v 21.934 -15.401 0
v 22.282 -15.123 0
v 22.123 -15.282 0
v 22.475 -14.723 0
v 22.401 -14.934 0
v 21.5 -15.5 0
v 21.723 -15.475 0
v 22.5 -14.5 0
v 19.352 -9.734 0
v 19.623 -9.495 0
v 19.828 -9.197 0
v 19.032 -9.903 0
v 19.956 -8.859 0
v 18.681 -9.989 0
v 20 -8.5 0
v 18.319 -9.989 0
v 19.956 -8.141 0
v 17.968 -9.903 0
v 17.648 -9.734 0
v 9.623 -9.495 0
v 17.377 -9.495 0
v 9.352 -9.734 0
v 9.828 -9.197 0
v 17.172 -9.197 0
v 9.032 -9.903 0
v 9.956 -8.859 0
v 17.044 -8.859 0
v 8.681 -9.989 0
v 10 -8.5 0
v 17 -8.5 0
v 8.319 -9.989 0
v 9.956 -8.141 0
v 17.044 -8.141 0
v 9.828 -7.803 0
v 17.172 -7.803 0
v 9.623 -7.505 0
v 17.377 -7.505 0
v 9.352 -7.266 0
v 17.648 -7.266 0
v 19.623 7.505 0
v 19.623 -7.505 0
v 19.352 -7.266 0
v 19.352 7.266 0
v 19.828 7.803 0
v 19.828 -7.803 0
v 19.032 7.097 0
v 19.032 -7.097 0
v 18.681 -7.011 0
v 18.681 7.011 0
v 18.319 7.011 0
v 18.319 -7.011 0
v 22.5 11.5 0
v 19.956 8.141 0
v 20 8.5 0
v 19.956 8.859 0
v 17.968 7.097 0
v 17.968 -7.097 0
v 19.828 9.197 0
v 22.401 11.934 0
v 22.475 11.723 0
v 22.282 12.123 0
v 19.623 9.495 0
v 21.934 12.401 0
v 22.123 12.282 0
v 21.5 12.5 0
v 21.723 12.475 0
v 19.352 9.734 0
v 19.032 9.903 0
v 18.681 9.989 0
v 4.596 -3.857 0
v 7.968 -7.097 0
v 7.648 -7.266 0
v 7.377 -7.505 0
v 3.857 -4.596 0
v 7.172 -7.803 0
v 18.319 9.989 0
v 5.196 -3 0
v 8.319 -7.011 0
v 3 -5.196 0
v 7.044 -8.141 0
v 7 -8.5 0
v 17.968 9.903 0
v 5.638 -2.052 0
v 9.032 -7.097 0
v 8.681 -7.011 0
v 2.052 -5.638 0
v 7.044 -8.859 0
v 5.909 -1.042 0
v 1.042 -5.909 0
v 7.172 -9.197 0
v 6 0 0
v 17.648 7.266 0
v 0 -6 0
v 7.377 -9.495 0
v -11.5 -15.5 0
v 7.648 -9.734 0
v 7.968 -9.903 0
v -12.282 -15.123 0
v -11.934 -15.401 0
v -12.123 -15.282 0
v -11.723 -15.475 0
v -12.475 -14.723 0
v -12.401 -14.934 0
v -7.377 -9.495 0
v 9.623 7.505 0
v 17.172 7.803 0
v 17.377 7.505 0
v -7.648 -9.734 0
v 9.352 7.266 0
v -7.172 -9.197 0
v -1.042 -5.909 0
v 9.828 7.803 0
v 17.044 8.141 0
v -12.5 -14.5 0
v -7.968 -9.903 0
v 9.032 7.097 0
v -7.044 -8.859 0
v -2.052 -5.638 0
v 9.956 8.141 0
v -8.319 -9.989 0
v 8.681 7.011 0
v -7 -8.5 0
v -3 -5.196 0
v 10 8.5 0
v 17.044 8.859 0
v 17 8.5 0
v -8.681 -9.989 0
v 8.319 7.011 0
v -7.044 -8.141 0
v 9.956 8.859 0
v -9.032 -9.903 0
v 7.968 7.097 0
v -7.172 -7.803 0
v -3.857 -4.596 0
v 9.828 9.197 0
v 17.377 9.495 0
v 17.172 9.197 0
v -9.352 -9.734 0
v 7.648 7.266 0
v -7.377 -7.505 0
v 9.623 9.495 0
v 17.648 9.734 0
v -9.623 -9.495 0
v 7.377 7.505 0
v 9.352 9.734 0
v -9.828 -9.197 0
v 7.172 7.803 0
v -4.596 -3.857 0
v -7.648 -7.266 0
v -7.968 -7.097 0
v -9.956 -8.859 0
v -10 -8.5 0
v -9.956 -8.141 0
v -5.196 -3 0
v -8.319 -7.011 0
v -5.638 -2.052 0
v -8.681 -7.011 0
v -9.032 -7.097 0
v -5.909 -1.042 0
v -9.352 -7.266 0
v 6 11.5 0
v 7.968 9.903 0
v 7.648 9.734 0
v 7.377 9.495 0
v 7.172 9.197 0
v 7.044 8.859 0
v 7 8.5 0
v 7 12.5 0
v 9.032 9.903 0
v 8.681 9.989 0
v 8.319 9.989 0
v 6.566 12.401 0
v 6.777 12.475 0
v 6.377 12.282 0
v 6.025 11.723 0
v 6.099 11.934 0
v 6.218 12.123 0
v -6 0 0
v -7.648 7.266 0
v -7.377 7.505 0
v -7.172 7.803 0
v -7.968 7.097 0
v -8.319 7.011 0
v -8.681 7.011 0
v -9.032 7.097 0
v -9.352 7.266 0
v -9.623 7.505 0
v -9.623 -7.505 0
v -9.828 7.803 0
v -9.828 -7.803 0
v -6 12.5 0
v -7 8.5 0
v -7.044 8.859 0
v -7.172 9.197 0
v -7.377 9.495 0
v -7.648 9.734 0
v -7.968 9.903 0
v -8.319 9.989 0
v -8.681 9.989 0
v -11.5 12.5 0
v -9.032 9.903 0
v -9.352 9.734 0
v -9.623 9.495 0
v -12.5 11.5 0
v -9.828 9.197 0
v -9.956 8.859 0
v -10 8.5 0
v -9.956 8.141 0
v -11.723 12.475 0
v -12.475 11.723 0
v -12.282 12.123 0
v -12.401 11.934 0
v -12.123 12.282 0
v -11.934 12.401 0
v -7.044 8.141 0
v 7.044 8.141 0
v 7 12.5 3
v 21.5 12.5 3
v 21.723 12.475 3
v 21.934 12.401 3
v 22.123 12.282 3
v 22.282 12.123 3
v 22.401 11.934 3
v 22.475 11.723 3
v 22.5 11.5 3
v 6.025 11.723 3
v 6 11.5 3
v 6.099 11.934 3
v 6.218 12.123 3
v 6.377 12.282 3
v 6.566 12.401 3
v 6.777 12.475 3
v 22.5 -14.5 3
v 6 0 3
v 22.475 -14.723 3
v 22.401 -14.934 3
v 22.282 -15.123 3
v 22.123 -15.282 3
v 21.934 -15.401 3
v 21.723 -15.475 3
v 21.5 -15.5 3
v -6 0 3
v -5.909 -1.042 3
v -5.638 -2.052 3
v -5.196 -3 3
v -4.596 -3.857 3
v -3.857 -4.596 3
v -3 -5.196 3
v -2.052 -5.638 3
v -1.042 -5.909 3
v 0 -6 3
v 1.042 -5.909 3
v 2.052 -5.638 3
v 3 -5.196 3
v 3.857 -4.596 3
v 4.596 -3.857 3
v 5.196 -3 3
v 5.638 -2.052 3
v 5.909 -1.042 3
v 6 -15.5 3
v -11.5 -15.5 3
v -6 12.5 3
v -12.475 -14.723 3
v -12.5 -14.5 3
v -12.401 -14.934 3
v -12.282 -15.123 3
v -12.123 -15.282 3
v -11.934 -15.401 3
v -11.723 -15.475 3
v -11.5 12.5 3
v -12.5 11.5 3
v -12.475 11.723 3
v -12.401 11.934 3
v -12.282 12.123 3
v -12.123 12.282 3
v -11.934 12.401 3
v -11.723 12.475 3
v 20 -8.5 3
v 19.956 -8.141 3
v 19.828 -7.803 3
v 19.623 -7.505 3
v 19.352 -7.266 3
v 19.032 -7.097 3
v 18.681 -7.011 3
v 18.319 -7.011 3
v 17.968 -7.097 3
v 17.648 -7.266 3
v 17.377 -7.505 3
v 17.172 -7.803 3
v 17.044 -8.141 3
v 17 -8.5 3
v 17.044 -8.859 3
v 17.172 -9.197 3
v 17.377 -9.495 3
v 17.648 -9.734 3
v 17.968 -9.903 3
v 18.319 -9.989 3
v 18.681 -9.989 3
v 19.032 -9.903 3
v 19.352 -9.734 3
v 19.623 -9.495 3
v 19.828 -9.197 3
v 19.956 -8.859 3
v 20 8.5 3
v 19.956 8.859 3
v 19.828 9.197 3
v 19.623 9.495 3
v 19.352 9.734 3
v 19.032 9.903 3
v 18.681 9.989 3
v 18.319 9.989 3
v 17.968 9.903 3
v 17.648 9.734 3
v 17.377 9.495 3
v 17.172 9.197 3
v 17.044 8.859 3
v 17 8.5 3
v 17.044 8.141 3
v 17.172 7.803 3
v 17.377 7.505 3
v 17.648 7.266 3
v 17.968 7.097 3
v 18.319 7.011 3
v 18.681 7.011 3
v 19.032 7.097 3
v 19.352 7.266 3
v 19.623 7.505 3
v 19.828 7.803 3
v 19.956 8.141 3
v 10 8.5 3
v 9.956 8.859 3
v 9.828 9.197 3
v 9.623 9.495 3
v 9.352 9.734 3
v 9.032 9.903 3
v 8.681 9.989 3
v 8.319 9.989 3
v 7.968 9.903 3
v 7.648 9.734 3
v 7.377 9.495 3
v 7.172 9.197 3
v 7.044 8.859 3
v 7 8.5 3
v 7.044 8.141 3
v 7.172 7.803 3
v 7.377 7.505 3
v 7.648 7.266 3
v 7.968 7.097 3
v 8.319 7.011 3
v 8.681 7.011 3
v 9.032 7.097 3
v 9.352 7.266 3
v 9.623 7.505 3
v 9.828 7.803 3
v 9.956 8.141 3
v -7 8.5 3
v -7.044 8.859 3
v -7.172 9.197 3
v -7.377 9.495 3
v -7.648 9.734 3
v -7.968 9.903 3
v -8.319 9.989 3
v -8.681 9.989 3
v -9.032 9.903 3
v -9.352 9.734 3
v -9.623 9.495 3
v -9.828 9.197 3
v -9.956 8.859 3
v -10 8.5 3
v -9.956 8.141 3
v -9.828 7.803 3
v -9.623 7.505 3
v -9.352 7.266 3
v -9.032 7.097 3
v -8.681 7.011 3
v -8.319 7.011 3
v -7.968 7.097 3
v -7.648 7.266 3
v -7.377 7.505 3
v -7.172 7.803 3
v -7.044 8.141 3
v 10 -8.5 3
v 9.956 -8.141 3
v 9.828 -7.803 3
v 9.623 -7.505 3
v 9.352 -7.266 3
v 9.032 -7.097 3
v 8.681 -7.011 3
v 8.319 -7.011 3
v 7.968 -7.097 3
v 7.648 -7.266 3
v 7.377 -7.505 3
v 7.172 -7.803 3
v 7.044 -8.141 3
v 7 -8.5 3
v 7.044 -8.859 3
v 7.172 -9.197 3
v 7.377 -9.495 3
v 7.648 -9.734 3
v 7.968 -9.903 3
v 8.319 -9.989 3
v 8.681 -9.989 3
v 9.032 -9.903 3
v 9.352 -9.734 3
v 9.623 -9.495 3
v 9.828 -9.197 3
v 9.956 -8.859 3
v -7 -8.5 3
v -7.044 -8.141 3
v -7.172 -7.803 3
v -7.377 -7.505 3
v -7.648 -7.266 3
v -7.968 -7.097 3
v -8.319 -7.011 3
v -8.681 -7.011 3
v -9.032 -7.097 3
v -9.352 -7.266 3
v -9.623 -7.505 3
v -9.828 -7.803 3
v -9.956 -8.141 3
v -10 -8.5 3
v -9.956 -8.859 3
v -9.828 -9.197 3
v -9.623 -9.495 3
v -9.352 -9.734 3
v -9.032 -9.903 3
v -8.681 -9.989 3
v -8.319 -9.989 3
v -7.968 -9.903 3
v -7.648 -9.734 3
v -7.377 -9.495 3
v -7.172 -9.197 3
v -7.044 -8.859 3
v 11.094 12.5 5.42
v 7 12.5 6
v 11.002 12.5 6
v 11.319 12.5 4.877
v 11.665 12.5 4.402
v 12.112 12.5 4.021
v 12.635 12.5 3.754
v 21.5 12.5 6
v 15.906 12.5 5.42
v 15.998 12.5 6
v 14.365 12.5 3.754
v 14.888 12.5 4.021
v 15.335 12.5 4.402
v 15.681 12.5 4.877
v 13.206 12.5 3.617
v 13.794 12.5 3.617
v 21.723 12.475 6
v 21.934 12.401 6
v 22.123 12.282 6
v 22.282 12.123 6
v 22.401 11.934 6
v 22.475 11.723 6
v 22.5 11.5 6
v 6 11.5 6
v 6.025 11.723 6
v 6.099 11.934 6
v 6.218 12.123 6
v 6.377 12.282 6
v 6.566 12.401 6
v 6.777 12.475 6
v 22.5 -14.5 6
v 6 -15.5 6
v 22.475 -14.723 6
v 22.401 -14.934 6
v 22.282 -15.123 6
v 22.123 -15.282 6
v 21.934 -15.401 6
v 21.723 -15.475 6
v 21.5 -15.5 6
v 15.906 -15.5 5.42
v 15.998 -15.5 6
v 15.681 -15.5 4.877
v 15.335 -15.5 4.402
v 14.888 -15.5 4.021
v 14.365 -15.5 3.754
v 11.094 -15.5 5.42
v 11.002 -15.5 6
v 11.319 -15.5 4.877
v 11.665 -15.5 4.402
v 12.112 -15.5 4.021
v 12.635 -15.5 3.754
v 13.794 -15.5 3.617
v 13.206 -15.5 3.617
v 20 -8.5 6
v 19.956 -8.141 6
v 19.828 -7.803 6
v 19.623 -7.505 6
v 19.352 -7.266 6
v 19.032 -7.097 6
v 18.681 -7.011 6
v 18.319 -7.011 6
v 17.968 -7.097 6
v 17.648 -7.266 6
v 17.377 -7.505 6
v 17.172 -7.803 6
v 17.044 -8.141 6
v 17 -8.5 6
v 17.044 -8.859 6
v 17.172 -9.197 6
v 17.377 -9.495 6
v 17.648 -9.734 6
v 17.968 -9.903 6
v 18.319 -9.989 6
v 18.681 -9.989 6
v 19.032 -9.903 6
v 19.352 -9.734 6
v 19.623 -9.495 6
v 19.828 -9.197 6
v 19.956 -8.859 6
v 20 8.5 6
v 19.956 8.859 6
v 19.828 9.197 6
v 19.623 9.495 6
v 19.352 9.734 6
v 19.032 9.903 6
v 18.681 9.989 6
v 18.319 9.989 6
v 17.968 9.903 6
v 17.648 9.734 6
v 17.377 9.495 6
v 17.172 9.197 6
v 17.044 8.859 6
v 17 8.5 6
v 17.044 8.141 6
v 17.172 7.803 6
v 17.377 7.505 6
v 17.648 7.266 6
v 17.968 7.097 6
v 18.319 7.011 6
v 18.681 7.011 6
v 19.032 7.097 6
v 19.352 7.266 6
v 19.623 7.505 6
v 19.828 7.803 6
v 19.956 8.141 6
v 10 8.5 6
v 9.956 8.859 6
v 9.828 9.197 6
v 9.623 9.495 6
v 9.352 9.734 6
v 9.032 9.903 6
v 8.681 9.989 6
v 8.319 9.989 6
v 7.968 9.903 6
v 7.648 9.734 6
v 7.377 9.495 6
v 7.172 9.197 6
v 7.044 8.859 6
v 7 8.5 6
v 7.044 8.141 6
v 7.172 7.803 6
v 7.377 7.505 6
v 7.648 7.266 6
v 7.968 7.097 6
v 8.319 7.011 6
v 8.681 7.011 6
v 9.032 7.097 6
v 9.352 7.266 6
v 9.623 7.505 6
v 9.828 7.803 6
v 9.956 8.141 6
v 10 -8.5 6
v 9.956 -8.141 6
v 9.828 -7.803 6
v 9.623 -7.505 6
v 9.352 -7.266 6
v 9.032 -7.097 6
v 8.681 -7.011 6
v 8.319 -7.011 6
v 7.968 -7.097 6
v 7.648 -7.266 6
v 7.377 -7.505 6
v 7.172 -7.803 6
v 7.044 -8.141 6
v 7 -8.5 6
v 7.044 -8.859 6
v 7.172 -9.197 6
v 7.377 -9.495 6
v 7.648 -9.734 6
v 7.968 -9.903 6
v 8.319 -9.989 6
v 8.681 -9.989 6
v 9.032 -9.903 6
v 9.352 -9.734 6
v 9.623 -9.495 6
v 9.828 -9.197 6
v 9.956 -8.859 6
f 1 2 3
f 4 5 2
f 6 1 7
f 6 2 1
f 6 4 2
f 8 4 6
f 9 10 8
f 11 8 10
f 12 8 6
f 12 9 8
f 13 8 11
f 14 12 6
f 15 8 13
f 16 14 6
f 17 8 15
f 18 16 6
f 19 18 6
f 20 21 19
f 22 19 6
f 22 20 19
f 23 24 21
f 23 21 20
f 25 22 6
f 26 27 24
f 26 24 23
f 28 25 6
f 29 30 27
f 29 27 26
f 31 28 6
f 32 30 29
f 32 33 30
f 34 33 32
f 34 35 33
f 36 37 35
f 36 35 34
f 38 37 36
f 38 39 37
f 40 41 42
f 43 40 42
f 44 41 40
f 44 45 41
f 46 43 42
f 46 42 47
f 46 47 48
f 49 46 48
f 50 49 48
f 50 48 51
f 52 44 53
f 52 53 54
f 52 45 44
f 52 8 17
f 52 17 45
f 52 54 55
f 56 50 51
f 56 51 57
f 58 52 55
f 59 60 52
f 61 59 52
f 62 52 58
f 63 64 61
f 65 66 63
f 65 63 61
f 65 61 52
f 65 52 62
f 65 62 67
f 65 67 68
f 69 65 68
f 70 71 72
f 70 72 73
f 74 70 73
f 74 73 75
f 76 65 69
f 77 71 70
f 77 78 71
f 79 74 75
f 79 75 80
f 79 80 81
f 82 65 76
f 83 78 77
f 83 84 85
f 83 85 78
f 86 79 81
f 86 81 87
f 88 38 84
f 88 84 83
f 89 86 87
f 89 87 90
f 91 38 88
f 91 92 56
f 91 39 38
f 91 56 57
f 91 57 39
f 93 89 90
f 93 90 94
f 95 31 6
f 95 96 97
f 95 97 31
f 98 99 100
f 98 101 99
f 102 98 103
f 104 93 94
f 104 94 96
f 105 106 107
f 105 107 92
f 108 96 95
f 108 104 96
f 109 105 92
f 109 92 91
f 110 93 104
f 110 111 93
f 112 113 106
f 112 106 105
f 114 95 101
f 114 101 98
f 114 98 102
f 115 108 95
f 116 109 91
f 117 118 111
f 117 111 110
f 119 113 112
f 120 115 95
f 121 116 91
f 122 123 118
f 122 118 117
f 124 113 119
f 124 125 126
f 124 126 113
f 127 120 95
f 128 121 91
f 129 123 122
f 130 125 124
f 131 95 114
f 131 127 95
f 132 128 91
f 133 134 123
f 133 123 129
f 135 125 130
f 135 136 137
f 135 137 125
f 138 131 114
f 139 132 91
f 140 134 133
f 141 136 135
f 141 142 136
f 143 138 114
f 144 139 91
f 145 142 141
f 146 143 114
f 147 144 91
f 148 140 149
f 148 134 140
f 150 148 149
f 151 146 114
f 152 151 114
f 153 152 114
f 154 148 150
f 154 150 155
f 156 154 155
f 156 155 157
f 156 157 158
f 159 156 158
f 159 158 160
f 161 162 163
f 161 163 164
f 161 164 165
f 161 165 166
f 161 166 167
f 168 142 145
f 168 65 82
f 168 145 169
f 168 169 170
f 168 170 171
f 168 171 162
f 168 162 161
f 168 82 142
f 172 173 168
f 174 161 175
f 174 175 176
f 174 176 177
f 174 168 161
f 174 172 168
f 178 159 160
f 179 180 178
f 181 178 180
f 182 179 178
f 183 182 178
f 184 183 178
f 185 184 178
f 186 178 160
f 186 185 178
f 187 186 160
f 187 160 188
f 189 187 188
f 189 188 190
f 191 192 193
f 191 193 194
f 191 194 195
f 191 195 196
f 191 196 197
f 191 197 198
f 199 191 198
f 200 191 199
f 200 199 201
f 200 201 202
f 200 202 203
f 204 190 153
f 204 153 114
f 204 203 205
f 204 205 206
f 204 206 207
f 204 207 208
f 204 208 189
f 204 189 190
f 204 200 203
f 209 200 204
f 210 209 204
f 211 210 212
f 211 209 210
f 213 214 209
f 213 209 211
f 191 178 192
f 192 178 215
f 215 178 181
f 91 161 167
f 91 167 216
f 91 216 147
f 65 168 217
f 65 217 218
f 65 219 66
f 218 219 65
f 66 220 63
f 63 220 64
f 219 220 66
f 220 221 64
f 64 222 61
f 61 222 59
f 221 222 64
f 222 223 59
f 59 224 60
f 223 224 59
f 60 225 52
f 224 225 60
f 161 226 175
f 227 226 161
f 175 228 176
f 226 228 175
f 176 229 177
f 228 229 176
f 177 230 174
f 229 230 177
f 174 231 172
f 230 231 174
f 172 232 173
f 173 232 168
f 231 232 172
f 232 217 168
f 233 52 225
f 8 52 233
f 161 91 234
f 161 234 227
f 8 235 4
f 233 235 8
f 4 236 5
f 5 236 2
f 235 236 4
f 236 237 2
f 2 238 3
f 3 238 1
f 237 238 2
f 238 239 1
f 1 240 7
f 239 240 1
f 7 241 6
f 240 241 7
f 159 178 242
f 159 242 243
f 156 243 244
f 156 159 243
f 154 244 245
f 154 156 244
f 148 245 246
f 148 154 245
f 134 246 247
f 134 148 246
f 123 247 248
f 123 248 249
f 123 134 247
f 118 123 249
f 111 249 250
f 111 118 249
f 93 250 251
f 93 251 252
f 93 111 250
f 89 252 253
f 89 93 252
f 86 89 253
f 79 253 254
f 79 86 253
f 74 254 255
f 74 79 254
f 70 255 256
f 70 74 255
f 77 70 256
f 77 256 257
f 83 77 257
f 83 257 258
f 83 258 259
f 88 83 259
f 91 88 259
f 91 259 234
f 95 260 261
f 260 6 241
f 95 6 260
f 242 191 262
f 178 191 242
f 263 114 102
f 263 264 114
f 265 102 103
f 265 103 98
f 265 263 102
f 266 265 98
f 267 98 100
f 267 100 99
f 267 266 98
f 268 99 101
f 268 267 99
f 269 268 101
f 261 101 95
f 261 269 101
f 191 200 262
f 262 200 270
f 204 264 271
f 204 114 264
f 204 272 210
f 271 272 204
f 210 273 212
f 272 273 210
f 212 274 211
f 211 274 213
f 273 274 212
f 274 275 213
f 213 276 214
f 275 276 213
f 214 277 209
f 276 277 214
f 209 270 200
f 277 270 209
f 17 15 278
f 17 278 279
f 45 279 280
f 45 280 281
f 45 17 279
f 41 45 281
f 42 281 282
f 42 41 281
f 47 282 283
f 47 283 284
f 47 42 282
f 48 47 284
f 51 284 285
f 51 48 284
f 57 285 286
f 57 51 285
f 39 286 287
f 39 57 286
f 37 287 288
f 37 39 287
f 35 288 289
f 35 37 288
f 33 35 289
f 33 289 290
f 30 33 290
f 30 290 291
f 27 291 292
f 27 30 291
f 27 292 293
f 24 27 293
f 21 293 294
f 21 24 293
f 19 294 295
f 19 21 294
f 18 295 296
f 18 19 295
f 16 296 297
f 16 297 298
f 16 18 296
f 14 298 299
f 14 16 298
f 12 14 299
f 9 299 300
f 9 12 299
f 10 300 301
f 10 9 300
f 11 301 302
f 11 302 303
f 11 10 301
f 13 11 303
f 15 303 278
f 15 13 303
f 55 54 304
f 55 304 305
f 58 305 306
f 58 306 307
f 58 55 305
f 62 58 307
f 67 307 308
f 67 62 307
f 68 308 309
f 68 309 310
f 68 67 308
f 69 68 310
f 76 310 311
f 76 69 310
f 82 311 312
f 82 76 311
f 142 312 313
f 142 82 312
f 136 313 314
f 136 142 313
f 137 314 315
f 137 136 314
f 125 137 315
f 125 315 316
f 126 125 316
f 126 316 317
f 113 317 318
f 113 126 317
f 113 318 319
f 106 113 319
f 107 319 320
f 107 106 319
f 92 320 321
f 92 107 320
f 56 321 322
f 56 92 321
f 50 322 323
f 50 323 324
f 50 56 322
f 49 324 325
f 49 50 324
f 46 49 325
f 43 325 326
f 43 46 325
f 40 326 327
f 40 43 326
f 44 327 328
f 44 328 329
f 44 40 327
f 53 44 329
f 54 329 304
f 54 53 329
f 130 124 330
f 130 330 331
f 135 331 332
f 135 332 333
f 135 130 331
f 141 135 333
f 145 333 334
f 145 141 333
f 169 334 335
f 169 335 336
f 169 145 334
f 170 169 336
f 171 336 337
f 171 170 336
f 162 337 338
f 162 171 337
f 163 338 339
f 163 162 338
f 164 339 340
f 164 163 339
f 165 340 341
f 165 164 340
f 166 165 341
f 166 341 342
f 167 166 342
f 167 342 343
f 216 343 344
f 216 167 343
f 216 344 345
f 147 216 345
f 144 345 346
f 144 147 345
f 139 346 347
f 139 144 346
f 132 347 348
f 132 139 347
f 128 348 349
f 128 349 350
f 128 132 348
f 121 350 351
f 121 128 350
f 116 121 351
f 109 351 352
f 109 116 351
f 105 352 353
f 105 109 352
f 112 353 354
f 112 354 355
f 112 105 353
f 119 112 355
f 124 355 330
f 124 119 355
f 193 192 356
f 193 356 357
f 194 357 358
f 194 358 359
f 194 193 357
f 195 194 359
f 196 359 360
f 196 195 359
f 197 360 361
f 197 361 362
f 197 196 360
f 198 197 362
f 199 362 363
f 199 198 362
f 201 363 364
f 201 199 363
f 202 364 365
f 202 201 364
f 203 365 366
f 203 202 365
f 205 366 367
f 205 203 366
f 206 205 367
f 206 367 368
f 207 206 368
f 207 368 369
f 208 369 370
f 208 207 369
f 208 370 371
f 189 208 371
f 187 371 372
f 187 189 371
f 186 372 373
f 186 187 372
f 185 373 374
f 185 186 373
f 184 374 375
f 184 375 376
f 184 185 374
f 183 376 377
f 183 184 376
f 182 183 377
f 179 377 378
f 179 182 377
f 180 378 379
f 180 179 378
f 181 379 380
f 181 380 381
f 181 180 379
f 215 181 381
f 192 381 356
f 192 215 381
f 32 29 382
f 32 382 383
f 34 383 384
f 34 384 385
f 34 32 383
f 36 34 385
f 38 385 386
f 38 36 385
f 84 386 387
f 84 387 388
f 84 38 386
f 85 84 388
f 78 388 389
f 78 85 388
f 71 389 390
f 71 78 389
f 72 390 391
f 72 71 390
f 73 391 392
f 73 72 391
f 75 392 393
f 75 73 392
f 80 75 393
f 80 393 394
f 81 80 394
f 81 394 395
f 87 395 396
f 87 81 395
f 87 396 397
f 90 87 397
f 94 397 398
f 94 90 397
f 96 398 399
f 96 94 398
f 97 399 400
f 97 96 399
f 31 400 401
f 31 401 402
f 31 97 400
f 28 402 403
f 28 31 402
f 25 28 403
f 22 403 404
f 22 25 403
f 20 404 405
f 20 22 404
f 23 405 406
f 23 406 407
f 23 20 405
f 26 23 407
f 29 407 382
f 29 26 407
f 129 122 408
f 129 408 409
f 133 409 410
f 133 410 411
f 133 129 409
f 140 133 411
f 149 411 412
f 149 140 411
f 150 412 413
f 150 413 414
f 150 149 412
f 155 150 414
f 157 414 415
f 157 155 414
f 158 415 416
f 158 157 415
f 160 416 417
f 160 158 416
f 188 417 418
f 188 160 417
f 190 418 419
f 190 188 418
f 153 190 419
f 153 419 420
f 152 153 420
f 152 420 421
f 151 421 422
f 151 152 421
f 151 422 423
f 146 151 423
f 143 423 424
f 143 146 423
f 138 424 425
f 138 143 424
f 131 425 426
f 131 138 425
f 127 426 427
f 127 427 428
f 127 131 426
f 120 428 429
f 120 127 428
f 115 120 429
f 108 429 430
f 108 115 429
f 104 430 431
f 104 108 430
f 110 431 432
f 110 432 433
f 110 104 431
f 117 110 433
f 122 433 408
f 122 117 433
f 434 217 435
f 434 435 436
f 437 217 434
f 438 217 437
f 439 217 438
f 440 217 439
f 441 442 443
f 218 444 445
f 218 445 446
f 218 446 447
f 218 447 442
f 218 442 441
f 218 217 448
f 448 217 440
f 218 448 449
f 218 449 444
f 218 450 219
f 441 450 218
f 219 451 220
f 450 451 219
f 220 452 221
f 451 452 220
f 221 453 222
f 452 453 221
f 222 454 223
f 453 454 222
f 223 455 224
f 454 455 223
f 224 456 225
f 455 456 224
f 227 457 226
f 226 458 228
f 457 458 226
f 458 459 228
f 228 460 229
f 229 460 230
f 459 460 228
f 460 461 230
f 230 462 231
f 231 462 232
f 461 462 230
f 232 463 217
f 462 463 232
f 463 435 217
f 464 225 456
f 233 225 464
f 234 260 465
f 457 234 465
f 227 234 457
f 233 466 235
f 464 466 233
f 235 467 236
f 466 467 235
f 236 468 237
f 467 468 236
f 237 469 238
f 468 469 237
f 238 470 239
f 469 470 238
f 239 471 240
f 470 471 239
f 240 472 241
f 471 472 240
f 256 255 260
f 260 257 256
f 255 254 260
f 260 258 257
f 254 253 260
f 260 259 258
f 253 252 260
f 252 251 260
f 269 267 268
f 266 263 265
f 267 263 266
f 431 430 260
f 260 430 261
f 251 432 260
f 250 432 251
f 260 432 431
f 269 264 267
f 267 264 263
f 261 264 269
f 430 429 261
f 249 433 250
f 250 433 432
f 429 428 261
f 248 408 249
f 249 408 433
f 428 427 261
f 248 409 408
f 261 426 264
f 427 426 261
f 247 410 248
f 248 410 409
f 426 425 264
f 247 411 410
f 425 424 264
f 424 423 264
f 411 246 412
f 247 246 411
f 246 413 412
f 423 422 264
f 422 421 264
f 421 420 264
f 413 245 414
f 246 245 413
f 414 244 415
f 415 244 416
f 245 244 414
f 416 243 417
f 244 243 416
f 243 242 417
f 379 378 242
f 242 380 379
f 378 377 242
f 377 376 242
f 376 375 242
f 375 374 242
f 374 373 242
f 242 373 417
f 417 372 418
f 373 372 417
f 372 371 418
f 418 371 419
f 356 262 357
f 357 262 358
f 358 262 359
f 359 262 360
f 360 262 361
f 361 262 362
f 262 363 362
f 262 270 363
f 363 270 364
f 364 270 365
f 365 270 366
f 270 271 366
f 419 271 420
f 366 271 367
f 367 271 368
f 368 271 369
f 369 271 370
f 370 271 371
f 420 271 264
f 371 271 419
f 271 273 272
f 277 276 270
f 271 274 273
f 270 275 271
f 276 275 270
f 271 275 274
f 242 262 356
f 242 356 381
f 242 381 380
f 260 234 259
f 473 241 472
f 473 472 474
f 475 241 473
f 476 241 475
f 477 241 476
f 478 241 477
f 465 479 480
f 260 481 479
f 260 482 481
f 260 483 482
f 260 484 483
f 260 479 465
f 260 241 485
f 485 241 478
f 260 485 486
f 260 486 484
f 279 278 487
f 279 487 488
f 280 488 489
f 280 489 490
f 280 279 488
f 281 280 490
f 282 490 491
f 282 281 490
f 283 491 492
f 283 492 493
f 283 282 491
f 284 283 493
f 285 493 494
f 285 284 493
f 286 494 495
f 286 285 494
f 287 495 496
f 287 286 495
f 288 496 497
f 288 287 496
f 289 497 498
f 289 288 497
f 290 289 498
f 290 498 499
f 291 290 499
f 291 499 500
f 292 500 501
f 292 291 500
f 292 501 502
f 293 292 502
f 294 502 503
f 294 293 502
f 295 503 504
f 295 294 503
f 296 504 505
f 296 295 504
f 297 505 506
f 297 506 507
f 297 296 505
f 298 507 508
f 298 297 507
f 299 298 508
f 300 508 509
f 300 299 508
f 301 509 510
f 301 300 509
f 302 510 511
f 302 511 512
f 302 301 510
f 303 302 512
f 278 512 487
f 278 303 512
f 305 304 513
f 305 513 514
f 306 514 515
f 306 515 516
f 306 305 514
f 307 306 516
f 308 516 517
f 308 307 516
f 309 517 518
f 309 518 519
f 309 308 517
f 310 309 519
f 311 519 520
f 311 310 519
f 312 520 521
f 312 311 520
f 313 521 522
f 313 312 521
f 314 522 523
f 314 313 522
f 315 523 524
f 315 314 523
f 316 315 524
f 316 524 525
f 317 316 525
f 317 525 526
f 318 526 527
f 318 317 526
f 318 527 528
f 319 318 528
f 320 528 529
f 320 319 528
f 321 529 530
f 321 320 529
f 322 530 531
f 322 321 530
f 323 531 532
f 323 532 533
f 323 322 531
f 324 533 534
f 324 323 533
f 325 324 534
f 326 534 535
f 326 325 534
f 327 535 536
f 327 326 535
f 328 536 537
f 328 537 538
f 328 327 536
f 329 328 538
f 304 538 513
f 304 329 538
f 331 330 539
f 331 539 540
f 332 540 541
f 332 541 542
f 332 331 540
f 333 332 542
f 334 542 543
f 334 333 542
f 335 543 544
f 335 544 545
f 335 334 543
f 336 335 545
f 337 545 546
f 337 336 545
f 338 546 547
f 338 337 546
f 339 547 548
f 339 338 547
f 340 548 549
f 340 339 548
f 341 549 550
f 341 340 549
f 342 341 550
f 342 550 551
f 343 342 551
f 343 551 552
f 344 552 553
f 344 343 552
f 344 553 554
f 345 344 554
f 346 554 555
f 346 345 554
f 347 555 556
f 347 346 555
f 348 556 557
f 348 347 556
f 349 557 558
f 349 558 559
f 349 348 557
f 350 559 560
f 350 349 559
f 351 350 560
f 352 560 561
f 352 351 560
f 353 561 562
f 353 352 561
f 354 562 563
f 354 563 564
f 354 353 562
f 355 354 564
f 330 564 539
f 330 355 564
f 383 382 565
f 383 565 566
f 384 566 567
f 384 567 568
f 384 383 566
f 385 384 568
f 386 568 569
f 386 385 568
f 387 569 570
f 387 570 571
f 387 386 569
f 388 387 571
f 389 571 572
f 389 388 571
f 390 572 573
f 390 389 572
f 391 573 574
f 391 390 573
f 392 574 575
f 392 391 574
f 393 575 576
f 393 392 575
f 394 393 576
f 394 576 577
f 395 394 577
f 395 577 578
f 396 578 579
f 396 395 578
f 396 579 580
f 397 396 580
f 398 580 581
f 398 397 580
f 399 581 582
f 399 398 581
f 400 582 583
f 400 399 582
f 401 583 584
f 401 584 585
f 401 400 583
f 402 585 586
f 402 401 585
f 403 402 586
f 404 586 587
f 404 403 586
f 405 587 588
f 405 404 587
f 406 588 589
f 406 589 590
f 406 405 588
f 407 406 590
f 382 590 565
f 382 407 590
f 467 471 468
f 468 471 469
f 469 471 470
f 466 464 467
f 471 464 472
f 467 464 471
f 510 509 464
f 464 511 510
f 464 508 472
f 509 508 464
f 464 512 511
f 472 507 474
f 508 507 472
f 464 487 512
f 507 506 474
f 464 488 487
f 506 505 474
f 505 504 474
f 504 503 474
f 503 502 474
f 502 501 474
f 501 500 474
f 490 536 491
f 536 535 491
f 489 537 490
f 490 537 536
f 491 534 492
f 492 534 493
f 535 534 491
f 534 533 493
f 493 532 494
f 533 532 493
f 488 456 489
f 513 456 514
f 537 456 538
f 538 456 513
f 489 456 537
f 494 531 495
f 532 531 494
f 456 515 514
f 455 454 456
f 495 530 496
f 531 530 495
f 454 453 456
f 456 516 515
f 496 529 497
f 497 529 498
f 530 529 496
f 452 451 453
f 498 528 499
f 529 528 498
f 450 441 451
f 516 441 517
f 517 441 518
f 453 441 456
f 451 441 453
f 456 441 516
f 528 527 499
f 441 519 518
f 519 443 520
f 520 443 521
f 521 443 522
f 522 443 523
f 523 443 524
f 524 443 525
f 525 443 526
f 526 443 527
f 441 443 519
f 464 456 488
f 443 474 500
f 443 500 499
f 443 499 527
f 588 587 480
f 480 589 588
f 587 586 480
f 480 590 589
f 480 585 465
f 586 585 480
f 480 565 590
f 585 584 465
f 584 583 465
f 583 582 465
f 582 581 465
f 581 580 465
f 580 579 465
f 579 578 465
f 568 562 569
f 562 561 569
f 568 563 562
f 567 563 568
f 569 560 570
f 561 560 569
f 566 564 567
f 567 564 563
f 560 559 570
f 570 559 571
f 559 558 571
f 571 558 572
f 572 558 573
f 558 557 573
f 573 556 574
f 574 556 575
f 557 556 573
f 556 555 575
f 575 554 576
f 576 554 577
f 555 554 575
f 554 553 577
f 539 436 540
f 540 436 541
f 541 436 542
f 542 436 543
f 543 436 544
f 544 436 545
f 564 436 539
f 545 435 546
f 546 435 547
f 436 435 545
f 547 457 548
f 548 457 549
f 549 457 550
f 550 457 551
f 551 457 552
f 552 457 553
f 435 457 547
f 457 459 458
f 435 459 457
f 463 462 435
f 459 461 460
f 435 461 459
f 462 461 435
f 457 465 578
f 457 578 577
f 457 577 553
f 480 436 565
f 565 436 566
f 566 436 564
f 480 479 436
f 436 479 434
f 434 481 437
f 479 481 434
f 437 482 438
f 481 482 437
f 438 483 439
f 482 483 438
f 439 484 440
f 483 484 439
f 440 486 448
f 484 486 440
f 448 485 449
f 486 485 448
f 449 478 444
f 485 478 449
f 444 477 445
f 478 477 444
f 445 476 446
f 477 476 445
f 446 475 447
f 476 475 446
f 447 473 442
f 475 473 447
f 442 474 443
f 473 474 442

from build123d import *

# Parameters (mm, degrees)
SKETCH_R     = 1.5
PAD_DEPTH    = 3
SKETCH001_W  = 16.5
SKETCH001_H  = 28
SKETCH001_R  = 1.5
PAD001_DEPTH = 3
SKETCH002_R  = 2.5
POCKET_DEPTH = 28.001
FILLET_R     = 1
FILLET001_R  = 1
FILLET002_R  = 1
FILLET003_R  = 1


with BuildPart() as part:
    # Sketch → Pad (new body)
    with BuildSketch(Plane.XY):
        with BuildLine():
            ThreePointArc((-6, 0), (0, -6), (6, 0))
            Line((6, 0), (6, 12.5))
            Line((6, 12.5), (22.5, 12.5))
            Line((22.5, 12.5), (22.5, -15.5))
            Line((-12.5, -15.5), (22.5, -15.5))
            Line((-12.5, 12.5), (-12.5, -15.5))
            Line((-6, 12.5), (-12.5, 12.5))
            Line((-6, 12.5), (-6, 0))
        make_face()
        with Locations((-8.5, -8.5)):
            Circle(SKETCH_R, mode=Mode.SUBTRACT)
        with Locations((8.5, -8.5)):
            Circle(SKETCH_R, mode=Mode.SUBTRACT)
        with Locations((-8.5, 8.5)):
            Circle(SKETCH_R, mode=Mode.SUBTRACT)
        with Locations((8.5, 8.5)):
            Circle(SKETCH_R, mode=Mode.SUBTRACT)
        with Locations((18.5, 8.5)):
            Circle(SKETCH_R, mode=Mode.SUBTRACT)
        with Locations((18.5, -8.5)):
            Circle(SKETCH_R, mode=Mode.SUBTRACT)
    extrude(amount=PAD_DEPTH)

    # Sketch001 → Pad001 (join)
    with BuildSketch(Plane.XY.offset(3)):
        with Locations((14.25, -1.5)):
            Rectangle(SKETCH001_W, SKETCH001_H)
        with Locations((8.5, 8.5)):
            Circle(SKETCH001_R, mode=Mode.SUBTRACT)
        with Locations((18.5, 8.5)):
            Circle(SKETCH001_R, mode=Mode.SUBTRACT)
        with Locations((18.5, -8.5)):
            Circle(SKETCH001_R, mode=Mode.SUBTRACT)
        with Locations((8.5, -8.5)):
            Circle(SKETCH001_R, mode=Mode.SUBTRACT)
    extrude(amount=PAD001_DEPTH)

    # Sketch002 (on Face20 of Pad001) → Pocket (cut, through all)
    with BuildSketch(Plane.XZ.offset(15.5)):
        with Locations((13.5, 6.1)):
            Circle(SKETCH002_R)
    extrude(amount=-POCKET_DEPTH, mode=Mode.SUBTRACT)

    # Fillet
    fillet_edges = [part.edges().sort_by_distance(p)[0] for p in [
        (-12.5, -15.5, 1.5),
        (22.5, -15.5, 1.5),
        (22.5, -15.5, 4.5),
    ]]
    fillet(fillet_edges, radius=FILLET_R)

    # Fillet001
    fillet001_edges = [part.edges().sort_by_distance(p)[0] for p in [
        (-12.5, 12.5, 1.5),
    ]]
    fillet(fillet001_edges, radius=FILLET001_R)

    # Fillet002
    fillet002_edges = [part.edges().sort_by_distance(p)[0] for p in [
        (6, 12.5, 4.5),
        (6, 12.5, 1.5),
    ]]
    fillet(fillet002_edges, radius=FILLET002_R)

    # Fillet003
    fillet003_edges = [part.edges().sort_by_distance(p)[0] for p in [
        (22.5, 12.5, 4.5),
        (22.5, 12.5, 1.5),
    ]]
    fillet(fillet003_edges, radius=FILLET003_R)


solid = part.part
